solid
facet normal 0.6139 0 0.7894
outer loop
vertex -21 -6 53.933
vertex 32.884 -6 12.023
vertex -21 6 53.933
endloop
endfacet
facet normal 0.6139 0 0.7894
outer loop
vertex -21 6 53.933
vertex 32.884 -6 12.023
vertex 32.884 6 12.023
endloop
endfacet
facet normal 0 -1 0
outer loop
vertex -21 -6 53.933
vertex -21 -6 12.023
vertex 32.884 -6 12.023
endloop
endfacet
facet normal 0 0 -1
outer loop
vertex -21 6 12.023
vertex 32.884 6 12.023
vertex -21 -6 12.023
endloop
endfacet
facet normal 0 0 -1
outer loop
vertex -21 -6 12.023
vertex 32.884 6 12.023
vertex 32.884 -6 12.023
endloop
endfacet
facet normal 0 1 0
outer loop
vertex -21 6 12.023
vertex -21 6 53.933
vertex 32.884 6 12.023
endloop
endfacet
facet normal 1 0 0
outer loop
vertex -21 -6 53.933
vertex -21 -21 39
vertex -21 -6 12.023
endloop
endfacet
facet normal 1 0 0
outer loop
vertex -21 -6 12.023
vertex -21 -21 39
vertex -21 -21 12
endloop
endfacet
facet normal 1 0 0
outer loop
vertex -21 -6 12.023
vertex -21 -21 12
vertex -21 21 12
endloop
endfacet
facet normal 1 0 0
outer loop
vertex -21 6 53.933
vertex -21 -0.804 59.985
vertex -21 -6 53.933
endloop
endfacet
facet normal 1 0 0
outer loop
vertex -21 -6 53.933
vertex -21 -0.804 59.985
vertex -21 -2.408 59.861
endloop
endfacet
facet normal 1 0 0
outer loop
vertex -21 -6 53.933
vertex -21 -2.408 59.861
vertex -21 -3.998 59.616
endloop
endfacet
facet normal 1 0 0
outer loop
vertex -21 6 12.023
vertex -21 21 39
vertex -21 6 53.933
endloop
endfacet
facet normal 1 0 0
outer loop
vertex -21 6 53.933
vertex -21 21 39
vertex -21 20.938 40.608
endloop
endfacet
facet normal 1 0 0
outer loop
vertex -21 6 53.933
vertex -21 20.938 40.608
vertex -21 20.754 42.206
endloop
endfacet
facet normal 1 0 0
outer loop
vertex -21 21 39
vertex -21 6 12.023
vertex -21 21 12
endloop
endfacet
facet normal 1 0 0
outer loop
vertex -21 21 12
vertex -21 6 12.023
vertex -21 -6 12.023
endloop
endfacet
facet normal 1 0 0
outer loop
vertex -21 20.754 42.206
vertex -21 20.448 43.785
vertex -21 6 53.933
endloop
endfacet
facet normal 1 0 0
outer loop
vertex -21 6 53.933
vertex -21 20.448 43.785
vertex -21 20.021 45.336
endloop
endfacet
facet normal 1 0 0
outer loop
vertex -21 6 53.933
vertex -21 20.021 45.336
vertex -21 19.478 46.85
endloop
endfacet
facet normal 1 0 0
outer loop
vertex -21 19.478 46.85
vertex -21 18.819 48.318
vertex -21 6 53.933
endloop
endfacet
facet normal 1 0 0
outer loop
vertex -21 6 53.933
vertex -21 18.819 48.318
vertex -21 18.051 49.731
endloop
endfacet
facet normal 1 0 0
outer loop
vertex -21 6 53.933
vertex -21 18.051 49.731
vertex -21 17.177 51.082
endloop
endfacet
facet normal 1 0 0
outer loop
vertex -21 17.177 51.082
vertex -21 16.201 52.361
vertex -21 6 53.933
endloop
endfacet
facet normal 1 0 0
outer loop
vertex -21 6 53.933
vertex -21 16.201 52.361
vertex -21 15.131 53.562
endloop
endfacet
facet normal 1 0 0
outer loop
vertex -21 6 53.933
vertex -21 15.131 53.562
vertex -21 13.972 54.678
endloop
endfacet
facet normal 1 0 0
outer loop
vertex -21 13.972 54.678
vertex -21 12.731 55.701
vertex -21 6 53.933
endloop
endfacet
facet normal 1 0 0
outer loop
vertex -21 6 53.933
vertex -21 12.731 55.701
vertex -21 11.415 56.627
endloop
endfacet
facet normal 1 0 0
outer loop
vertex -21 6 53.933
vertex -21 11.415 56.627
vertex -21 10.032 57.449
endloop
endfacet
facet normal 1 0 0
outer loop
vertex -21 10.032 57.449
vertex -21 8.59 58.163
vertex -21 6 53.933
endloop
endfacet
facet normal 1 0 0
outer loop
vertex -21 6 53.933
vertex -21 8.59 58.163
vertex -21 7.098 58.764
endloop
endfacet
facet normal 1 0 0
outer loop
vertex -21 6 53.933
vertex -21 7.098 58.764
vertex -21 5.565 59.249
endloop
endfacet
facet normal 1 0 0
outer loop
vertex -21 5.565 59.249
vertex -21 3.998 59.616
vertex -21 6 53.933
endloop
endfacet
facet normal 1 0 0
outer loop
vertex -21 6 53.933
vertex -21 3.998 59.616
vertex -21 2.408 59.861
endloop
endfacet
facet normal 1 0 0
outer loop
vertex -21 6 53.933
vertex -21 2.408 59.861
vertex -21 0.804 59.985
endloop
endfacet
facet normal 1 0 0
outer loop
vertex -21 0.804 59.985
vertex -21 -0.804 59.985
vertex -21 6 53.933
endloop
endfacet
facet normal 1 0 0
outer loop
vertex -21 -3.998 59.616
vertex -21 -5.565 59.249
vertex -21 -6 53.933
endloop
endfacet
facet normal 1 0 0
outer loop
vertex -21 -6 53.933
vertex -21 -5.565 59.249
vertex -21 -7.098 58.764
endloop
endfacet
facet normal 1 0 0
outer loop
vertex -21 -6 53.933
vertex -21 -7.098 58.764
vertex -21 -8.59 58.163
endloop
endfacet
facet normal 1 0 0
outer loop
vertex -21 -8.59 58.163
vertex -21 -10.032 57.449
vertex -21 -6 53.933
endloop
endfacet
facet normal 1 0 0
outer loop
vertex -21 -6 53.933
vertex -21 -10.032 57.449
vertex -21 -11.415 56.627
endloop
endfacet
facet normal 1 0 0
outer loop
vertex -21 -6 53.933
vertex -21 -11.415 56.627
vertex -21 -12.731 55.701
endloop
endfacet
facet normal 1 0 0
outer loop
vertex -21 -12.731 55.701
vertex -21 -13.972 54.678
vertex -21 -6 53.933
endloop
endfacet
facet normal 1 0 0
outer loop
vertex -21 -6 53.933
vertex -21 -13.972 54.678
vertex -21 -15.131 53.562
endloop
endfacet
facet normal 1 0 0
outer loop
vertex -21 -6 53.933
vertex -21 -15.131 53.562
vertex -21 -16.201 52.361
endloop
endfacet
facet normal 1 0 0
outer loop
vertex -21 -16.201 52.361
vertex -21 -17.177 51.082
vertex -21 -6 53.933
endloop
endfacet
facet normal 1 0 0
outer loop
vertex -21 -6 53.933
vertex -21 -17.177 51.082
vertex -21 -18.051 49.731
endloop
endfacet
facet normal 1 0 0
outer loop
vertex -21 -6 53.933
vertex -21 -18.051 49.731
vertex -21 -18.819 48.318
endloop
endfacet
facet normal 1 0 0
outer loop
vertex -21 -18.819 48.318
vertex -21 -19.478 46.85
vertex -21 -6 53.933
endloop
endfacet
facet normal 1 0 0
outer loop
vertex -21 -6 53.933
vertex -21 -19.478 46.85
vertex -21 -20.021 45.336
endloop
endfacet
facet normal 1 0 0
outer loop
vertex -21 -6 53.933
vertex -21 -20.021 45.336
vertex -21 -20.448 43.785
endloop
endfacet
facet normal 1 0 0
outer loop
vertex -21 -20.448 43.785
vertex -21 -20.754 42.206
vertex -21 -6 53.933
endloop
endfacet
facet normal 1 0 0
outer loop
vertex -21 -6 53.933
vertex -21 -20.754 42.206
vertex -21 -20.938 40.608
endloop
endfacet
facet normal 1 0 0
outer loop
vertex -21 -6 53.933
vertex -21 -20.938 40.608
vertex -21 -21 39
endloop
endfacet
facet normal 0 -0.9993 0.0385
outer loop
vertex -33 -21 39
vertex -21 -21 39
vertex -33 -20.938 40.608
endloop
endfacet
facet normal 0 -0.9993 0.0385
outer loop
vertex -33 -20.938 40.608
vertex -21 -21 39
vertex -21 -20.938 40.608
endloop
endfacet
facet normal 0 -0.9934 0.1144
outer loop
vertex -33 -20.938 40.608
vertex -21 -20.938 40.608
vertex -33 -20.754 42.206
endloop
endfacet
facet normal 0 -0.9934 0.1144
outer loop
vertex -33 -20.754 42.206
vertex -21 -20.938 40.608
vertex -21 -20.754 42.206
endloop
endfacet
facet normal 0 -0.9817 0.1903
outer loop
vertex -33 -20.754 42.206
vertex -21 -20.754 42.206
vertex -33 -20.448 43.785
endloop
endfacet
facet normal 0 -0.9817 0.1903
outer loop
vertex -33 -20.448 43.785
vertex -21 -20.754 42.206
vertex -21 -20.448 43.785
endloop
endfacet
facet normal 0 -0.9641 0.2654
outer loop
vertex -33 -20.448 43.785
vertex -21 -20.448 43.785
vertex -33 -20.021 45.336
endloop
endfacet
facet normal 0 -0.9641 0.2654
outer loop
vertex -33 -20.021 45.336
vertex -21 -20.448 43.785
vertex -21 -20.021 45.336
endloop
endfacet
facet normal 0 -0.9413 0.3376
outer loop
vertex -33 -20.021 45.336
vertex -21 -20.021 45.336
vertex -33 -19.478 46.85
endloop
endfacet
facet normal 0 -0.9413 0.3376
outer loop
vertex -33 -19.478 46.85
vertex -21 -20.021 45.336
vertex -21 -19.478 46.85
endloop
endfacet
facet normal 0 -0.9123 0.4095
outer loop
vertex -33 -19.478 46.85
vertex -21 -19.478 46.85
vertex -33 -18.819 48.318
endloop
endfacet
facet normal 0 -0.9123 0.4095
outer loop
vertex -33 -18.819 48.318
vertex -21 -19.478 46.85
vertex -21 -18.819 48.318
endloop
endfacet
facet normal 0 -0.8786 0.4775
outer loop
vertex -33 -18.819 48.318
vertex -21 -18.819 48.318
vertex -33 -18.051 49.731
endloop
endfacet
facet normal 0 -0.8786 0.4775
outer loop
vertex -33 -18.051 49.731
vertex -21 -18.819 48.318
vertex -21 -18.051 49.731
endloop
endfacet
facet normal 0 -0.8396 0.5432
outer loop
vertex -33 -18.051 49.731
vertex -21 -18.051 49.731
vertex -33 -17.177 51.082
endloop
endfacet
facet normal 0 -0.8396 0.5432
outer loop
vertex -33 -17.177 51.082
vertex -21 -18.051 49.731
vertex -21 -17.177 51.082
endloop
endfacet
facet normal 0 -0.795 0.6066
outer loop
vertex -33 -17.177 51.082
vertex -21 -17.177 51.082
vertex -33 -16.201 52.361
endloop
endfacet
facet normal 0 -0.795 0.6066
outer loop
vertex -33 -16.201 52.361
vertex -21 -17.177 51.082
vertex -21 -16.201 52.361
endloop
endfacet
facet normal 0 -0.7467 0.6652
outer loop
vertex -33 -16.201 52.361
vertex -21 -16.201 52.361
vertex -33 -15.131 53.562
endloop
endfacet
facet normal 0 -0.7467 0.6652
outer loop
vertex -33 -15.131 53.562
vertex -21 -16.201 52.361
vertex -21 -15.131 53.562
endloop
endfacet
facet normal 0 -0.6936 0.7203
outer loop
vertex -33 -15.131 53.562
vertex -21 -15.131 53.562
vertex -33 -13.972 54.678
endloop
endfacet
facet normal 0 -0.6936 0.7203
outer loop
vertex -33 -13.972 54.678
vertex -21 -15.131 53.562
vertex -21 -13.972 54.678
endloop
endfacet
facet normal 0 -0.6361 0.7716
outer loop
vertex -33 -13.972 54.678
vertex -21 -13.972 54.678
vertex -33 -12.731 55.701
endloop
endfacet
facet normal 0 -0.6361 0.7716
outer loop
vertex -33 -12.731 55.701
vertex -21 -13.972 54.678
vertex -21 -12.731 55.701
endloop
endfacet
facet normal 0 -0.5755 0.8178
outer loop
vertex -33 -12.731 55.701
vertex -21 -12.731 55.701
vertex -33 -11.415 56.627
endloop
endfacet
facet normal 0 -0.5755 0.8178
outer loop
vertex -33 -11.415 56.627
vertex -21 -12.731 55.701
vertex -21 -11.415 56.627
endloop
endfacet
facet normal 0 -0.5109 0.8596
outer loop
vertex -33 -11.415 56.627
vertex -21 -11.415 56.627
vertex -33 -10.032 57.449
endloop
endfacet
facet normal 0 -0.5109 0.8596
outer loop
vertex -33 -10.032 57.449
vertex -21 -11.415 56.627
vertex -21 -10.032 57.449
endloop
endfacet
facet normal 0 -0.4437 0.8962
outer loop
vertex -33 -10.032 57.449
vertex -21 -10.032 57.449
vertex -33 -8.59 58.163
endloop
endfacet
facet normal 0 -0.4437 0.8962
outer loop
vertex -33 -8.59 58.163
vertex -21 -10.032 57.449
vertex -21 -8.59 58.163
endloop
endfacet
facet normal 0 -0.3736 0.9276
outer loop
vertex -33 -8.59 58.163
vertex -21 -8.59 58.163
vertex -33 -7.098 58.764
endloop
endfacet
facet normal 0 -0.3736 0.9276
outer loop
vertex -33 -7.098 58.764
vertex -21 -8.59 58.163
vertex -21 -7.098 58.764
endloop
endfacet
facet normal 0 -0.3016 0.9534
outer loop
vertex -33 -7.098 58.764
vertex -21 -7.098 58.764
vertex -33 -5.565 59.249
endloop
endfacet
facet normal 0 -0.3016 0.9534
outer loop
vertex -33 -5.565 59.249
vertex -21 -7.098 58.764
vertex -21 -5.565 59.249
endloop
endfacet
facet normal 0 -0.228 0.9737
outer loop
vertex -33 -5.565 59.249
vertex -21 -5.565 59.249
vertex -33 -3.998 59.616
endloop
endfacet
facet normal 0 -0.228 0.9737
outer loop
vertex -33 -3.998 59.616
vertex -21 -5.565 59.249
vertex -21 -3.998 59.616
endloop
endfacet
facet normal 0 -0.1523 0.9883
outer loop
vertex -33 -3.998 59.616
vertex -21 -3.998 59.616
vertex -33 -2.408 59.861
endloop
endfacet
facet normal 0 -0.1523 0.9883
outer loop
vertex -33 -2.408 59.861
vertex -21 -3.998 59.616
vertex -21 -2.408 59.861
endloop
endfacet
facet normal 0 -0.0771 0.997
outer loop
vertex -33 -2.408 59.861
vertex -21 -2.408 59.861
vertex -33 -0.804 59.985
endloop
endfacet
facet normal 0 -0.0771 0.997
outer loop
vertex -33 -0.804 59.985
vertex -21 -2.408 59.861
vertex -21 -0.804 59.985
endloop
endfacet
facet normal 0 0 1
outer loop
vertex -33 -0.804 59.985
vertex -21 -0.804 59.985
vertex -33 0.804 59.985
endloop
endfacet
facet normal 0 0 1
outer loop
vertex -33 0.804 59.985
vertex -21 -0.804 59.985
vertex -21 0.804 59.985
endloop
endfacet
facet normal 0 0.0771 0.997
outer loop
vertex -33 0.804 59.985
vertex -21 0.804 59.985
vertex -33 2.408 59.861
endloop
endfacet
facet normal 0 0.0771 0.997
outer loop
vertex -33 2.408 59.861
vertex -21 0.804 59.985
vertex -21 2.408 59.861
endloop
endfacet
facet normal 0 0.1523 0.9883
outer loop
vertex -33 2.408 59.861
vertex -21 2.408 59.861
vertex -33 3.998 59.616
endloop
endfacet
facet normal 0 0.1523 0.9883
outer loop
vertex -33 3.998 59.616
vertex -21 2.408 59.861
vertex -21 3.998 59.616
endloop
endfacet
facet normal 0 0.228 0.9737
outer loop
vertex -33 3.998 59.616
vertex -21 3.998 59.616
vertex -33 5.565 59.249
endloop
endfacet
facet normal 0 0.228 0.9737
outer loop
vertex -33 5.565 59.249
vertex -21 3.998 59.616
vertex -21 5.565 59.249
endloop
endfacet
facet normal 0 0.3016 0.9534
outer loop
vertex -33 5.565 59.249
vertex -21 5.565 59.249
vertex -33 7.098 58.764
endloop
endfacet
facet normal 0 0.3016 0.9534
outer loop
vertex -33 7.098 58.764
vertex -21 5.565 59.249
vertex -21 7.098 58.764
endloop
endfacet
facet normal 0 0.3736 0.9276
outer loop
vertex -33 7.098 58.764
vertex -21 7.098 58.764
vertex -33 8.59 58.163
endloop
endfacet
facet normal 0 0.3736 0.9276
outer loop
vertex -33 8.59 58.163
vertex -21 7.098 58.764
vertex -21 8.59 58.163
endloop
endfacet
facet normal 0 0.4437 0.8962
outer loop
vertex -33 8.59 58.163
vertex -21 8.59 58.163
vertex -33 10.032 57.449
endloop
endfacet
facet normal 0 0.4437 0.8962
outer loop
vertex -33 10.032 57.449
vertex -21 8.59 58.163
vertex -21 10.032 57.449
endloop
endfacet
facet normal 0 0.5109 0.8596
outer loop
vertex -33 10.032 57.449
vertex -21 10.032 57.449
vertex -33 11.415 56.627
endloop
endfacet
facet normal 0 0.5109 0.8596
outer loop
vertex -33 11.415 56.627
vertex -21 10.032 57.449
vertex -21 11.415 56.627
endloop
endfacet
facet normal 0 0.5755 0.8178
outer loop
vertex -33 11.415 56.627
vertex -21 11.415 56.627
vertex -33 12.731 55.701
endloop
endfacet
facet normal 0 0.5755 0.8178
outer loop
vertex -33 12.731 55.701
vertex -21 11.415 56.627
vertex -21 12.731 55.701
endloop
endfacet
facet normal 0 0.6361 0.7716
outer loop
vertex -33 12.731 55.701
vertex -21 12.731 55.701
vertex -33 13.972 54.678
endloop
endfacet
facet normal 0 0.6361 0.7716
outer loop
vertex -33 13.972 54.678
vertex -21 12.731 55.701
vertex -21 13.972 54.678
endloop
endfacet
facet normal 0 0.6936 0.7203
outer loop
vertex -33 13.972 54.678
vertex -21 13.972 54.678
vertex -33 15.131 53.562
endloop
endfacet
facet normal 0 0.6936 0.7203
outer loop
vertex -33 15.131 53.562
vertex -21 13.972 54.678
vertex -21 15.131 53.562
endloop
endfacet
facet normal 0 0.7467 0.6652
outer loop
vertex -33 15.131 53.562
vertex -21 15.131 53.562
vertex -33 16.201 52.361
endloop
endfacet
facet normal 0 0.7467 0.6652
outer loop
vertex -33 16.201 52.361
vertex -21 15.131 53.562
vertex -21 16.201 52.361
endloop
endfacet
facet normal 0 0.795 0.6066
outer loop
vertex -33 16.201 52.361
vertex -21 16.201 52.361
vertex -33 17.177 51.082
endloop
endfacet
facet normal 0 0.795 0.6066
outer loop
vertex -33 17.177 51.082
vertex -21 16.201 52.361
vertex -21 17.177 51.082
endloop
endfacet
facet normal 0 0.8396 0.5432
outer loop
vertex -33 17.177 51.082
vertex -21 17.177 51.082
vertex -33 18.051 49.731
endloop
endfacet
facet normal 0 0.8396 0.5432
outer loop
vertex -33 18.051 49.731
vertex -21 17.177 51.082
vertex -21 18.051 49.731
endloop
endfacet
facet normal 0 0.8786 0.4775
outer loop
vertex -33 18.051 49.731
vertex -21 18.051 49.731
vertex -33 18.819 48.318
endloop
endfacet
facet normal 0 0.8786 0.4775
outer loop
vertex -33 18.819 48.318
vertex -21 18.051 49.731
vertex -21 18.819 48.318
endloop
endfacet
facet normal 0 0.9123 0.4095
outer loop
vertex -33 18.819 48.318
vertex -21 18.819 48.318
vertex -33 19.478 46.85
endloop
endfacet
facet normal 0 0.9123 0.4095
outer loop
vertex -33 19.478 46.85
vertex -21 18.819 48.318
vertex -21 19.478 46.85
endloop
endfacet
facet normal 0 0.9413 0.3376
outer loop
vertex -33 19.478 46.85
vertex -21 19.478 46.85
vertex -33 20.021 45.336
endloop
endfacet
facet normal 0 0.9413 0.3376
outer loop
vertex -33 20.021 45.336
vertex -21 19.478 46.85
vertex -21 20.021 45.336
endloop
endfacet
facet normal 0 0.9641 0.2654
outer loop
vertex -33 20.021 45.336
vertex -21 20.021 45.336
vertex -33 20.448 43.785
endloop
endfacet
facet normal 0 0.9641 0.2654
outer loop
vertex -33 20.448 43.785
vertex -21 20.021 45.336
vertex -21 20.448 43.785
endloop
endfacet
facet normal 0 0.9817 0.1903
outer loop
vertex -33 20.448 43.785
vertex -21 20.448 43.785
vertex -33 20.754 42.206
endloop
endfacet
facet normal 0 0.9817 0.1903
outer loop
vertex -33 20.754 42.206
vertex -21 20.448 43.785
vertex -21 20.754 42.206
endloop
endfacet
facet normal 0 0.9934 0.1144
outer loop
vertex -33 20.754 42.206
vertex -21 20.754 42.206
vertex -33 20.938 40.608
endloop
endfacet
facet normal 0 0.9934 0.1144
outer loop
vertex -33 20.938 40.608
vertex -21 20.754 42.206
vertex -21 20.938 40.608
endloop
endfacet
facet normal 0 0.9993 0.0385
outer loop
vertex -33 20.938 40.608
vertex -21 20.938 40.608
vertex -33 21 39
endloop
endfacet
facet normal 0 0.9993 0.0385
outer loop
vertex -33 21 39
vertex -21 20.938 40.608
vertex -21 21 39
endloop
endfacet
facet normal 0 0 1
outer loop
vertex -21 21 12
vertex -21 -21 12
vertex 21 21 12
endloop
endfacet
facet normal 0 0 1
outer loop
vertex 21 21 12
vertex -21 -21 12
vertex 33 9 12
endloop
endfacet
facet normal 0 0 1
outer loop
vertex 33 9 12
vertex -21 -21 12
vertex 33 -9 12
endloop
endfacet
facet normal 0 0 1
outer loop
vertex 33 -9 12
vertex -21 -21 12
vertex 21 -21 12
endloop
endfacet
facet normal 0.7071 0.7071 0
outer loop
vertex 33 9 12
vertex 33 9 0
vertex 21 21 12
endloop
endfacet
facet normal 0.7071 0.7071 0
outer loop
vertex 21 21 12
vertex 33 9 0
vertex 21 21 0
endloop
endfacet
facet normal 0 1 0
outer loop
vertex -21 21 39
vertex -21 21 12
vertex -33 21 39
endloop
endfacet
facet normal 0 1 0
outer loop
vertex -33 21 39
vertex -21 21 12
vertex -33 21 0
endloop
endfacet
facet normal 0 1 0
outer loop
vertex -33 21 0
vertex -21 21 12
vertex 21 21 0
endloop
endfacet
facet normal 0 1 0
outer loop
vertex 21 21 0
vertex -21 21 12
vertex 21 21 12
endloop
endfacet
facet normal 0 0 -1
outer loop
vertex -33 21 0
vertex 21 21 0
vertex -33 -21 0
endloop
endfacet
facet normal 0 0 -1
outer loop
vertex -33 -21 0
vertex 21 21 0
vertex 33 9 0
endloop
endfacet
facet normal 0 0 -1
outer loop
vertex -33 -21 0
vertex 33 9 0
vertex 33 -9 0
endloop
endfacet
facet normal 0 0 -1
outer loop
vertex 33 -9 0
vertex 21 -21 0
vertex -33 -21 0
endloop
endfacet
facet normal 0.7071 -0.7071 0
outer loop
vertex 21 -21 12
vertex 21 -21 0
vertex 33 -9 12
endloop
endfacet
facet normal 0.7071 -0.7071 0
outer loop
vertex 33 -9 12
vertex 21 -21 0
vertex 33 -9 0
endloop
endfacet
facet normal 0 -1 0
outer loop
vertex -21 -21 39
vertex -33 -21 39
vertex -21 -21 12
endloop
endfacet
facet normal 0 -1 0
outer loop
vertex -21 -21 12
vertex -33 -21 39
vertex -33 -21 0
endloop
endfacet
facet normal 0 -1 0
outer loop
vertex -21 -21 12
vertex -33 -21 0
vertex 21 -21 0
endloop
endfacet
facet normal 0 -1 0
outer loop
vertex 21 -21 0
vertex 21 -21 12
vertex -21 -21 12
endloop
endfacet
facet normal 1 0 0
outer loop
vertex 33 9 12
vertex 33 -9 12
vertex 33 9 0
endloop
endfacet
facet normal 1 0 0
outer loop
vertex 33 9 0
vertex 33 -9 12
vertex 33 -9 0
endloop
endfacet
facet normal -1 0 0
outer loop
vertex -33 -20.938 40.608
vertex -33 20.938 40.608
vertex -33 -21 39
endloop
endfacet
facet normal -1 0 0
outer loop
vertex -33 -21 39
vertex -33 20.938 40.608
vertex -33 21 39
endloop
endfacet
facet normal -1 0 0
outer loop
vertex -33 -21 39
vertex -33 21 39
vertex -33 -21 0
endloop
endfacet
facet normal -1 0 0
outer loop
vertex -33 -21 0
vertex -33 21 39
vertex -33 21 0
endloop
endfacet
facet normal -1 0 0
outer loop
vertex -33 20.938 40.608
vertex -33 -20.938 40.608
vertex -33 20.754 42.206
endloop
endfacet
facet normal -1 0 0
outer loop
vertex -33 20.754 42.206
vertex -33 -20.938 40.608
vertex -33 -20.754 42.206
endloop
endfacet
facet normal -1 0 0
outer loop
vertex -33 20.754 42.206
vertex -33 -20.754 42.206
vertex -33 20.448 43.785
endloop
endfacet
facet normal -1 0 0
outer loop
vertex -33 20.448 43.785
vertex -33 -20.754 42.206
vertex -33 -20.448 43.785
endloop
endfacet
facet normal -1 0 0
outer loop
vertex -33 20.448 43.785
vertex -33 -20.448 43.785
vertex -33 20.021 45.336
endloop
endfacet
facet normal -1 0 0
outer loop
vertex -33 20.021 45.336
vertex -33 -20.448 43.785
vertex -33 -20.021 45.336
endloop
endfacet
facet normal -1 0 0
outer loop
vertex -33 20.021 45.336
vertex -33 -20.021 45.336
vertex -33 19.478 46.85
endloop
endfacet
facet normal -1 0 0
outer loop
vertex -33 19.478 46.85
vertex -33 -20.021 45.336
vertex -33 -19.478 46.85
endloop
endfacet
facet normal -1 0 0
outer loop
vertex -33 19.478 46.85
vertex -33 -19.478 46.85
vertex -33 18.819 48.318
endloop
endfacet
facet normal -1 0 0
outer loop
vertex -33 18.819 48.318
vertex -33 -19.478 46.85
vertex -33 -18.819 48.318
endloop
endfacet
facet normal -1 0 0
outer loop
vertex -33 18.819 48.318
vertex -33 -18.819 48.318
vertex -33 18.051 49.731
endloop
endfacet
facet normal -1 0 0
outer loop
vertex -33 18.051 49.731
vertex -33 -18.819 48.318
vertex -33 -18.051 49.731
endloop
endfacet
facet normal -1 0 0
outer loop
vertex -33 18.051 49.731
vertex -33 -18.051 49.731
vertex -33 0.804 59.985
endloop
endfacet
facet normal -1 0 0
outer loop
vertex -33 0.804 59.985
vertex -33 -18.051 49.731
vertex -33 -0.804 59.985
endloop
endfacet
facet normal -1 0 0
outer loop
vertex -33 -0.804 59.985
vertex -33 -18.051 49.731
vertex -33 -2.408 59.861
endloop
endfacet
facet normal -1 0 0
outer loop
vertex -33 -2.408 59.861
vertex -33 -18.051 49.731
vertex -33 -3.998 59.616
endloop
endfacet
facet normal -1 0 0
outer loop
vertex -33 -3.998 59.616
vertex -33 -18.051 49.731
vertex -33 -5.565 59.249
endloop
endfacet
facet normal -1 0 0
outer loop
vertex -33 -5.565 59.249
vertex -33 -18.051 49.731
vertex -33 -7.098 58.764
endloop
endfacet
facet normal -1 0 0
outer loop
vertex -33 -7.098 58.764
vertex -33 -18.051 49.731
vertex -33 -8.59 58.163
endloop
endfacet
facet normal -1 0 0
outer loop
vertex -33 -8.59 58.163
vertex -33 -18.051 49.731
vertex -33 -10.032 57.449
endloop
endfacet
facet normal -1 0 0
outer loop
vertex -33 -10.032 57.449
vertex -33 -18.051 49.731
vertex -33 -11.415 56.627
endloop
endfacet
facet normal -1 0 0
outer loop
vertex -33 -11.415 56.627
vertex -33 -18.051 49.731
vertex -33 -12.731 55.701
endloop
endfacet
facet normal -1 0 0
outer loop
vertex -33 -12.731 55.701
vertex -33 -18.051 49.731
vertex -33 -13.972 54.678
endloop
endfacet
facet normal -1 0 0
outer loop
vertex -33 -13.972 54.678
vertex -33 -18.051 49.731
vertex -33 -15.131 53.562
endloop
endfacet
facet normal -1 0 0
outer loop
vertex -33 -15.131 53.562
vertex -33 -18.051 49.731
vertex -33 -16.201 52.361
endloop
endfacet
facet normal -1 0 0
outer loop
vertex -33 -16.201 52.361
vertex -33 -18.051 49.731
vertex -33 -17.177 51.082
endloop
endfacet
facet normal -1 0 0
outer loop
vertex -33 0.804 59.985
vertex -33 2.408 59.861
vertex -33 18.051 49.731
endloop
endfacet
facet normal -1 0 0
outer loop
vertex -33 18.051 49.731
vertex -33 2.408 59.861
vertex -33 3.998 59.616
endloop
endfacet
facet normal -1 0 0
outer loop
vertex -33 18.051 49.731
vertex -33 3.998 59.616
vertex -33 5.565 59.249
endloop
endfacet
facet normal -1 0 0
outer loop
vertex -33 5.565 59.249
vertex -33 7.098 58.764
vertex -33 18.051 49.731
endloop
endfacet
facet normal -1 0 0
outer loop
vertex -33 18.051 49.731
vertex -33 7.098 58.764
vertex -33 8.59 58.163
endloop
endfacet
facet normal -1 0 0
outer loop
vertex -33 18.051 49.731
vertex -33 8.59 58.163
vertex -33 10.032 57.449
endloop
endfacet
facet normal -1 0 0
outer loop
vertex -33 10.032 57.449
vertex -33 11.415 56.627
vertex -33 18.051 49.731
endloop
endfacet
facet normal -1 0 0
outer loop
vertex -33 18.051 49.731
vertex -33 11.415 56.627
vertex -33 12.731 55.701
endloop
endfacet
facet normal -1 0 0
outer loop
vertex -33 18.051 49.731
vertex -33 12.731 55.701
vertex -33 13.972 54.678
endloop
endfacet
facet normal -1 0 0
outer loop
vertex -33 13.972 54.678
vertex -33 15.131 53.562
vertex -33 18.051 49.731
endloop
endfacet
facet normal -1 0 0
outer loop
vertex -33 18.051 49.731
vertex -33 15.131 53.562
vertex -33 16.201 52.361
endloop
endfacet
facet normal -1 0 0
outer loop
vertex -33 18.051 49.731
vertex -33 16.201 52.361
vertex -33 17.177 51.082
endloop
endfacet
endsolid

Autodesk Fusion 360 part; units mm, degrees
sketch "Sketch1" plane through (0, 0, 0) normal (0, 0, 1) x (1, 0, 0)
  line L0 (-33, -21) -> (33, -21)
  line L1 (33, -21) -> (33, 21)
  line L2 (33, 21) -> (-33, 21)
  line L3 (-33, 21) -> (-33, -21)
  line L4 (-33, -21) -> (33, 21) construction
  line L5 (33, -21) -> (-33, 21) construction
  dimension "d1" = 66
  dimension "d2" = 42
extrude "Extrude1" add sketch "Sketch1" along normal blind 12
chamfer "Chamfer1" distance 12 angle 45 2 edges at (33, -21, 6) (33, 21, 6)
sketch "Sketch2" plane through (0, 0, 12) normal (0, 0, 1) x (-1, 0, 0)
  line L0 (-33, -9) -> (-21, -21)
  line L1 (-21, -21) -> (33, -21)
  line L2 (33, -21) -> (33, 21)
  line L3 (33, 21) -> (-21, 21)
  line L4 (-21, 21) -> (-33, 9)
  line L5 (-33, 9) -> (-33, -9)
  line L6 (33, -21) -> (21, -21)
  line L7 (21, -21) -> (21, 21)
  line L8 (21, 21) -> (33, 21)
  line L9 (33, 21) -> (33, -21)
  dimension "d6" = 12
extrude "Extrude2" add sketch "Sketch2" along normal blind 48 contours L1 L2 L3 L6 L7 L8 L9
fillet "Fillet1" radius 21 2 edges at (-27, -21, 60) (-27, 21, 60)
sketch "Sketch3" plane through (0, 0, 0) normal (0, 1, 0) x (1, 0, 0)
  line L0 (-21.1163, -54.0232) -> (-21.1163, -12.0232)
  line L1 (-21.1163, -12.0232) -> (32.8837, -12.0232)
  line L2 (32.8837, -12.0232) -> (-21.1163, -54.0232)
  dimension "d11" = 42
  dimension "d12" = 54
extrude "Extrude3" add sketch "Sketch3" along normal mid plane 12
